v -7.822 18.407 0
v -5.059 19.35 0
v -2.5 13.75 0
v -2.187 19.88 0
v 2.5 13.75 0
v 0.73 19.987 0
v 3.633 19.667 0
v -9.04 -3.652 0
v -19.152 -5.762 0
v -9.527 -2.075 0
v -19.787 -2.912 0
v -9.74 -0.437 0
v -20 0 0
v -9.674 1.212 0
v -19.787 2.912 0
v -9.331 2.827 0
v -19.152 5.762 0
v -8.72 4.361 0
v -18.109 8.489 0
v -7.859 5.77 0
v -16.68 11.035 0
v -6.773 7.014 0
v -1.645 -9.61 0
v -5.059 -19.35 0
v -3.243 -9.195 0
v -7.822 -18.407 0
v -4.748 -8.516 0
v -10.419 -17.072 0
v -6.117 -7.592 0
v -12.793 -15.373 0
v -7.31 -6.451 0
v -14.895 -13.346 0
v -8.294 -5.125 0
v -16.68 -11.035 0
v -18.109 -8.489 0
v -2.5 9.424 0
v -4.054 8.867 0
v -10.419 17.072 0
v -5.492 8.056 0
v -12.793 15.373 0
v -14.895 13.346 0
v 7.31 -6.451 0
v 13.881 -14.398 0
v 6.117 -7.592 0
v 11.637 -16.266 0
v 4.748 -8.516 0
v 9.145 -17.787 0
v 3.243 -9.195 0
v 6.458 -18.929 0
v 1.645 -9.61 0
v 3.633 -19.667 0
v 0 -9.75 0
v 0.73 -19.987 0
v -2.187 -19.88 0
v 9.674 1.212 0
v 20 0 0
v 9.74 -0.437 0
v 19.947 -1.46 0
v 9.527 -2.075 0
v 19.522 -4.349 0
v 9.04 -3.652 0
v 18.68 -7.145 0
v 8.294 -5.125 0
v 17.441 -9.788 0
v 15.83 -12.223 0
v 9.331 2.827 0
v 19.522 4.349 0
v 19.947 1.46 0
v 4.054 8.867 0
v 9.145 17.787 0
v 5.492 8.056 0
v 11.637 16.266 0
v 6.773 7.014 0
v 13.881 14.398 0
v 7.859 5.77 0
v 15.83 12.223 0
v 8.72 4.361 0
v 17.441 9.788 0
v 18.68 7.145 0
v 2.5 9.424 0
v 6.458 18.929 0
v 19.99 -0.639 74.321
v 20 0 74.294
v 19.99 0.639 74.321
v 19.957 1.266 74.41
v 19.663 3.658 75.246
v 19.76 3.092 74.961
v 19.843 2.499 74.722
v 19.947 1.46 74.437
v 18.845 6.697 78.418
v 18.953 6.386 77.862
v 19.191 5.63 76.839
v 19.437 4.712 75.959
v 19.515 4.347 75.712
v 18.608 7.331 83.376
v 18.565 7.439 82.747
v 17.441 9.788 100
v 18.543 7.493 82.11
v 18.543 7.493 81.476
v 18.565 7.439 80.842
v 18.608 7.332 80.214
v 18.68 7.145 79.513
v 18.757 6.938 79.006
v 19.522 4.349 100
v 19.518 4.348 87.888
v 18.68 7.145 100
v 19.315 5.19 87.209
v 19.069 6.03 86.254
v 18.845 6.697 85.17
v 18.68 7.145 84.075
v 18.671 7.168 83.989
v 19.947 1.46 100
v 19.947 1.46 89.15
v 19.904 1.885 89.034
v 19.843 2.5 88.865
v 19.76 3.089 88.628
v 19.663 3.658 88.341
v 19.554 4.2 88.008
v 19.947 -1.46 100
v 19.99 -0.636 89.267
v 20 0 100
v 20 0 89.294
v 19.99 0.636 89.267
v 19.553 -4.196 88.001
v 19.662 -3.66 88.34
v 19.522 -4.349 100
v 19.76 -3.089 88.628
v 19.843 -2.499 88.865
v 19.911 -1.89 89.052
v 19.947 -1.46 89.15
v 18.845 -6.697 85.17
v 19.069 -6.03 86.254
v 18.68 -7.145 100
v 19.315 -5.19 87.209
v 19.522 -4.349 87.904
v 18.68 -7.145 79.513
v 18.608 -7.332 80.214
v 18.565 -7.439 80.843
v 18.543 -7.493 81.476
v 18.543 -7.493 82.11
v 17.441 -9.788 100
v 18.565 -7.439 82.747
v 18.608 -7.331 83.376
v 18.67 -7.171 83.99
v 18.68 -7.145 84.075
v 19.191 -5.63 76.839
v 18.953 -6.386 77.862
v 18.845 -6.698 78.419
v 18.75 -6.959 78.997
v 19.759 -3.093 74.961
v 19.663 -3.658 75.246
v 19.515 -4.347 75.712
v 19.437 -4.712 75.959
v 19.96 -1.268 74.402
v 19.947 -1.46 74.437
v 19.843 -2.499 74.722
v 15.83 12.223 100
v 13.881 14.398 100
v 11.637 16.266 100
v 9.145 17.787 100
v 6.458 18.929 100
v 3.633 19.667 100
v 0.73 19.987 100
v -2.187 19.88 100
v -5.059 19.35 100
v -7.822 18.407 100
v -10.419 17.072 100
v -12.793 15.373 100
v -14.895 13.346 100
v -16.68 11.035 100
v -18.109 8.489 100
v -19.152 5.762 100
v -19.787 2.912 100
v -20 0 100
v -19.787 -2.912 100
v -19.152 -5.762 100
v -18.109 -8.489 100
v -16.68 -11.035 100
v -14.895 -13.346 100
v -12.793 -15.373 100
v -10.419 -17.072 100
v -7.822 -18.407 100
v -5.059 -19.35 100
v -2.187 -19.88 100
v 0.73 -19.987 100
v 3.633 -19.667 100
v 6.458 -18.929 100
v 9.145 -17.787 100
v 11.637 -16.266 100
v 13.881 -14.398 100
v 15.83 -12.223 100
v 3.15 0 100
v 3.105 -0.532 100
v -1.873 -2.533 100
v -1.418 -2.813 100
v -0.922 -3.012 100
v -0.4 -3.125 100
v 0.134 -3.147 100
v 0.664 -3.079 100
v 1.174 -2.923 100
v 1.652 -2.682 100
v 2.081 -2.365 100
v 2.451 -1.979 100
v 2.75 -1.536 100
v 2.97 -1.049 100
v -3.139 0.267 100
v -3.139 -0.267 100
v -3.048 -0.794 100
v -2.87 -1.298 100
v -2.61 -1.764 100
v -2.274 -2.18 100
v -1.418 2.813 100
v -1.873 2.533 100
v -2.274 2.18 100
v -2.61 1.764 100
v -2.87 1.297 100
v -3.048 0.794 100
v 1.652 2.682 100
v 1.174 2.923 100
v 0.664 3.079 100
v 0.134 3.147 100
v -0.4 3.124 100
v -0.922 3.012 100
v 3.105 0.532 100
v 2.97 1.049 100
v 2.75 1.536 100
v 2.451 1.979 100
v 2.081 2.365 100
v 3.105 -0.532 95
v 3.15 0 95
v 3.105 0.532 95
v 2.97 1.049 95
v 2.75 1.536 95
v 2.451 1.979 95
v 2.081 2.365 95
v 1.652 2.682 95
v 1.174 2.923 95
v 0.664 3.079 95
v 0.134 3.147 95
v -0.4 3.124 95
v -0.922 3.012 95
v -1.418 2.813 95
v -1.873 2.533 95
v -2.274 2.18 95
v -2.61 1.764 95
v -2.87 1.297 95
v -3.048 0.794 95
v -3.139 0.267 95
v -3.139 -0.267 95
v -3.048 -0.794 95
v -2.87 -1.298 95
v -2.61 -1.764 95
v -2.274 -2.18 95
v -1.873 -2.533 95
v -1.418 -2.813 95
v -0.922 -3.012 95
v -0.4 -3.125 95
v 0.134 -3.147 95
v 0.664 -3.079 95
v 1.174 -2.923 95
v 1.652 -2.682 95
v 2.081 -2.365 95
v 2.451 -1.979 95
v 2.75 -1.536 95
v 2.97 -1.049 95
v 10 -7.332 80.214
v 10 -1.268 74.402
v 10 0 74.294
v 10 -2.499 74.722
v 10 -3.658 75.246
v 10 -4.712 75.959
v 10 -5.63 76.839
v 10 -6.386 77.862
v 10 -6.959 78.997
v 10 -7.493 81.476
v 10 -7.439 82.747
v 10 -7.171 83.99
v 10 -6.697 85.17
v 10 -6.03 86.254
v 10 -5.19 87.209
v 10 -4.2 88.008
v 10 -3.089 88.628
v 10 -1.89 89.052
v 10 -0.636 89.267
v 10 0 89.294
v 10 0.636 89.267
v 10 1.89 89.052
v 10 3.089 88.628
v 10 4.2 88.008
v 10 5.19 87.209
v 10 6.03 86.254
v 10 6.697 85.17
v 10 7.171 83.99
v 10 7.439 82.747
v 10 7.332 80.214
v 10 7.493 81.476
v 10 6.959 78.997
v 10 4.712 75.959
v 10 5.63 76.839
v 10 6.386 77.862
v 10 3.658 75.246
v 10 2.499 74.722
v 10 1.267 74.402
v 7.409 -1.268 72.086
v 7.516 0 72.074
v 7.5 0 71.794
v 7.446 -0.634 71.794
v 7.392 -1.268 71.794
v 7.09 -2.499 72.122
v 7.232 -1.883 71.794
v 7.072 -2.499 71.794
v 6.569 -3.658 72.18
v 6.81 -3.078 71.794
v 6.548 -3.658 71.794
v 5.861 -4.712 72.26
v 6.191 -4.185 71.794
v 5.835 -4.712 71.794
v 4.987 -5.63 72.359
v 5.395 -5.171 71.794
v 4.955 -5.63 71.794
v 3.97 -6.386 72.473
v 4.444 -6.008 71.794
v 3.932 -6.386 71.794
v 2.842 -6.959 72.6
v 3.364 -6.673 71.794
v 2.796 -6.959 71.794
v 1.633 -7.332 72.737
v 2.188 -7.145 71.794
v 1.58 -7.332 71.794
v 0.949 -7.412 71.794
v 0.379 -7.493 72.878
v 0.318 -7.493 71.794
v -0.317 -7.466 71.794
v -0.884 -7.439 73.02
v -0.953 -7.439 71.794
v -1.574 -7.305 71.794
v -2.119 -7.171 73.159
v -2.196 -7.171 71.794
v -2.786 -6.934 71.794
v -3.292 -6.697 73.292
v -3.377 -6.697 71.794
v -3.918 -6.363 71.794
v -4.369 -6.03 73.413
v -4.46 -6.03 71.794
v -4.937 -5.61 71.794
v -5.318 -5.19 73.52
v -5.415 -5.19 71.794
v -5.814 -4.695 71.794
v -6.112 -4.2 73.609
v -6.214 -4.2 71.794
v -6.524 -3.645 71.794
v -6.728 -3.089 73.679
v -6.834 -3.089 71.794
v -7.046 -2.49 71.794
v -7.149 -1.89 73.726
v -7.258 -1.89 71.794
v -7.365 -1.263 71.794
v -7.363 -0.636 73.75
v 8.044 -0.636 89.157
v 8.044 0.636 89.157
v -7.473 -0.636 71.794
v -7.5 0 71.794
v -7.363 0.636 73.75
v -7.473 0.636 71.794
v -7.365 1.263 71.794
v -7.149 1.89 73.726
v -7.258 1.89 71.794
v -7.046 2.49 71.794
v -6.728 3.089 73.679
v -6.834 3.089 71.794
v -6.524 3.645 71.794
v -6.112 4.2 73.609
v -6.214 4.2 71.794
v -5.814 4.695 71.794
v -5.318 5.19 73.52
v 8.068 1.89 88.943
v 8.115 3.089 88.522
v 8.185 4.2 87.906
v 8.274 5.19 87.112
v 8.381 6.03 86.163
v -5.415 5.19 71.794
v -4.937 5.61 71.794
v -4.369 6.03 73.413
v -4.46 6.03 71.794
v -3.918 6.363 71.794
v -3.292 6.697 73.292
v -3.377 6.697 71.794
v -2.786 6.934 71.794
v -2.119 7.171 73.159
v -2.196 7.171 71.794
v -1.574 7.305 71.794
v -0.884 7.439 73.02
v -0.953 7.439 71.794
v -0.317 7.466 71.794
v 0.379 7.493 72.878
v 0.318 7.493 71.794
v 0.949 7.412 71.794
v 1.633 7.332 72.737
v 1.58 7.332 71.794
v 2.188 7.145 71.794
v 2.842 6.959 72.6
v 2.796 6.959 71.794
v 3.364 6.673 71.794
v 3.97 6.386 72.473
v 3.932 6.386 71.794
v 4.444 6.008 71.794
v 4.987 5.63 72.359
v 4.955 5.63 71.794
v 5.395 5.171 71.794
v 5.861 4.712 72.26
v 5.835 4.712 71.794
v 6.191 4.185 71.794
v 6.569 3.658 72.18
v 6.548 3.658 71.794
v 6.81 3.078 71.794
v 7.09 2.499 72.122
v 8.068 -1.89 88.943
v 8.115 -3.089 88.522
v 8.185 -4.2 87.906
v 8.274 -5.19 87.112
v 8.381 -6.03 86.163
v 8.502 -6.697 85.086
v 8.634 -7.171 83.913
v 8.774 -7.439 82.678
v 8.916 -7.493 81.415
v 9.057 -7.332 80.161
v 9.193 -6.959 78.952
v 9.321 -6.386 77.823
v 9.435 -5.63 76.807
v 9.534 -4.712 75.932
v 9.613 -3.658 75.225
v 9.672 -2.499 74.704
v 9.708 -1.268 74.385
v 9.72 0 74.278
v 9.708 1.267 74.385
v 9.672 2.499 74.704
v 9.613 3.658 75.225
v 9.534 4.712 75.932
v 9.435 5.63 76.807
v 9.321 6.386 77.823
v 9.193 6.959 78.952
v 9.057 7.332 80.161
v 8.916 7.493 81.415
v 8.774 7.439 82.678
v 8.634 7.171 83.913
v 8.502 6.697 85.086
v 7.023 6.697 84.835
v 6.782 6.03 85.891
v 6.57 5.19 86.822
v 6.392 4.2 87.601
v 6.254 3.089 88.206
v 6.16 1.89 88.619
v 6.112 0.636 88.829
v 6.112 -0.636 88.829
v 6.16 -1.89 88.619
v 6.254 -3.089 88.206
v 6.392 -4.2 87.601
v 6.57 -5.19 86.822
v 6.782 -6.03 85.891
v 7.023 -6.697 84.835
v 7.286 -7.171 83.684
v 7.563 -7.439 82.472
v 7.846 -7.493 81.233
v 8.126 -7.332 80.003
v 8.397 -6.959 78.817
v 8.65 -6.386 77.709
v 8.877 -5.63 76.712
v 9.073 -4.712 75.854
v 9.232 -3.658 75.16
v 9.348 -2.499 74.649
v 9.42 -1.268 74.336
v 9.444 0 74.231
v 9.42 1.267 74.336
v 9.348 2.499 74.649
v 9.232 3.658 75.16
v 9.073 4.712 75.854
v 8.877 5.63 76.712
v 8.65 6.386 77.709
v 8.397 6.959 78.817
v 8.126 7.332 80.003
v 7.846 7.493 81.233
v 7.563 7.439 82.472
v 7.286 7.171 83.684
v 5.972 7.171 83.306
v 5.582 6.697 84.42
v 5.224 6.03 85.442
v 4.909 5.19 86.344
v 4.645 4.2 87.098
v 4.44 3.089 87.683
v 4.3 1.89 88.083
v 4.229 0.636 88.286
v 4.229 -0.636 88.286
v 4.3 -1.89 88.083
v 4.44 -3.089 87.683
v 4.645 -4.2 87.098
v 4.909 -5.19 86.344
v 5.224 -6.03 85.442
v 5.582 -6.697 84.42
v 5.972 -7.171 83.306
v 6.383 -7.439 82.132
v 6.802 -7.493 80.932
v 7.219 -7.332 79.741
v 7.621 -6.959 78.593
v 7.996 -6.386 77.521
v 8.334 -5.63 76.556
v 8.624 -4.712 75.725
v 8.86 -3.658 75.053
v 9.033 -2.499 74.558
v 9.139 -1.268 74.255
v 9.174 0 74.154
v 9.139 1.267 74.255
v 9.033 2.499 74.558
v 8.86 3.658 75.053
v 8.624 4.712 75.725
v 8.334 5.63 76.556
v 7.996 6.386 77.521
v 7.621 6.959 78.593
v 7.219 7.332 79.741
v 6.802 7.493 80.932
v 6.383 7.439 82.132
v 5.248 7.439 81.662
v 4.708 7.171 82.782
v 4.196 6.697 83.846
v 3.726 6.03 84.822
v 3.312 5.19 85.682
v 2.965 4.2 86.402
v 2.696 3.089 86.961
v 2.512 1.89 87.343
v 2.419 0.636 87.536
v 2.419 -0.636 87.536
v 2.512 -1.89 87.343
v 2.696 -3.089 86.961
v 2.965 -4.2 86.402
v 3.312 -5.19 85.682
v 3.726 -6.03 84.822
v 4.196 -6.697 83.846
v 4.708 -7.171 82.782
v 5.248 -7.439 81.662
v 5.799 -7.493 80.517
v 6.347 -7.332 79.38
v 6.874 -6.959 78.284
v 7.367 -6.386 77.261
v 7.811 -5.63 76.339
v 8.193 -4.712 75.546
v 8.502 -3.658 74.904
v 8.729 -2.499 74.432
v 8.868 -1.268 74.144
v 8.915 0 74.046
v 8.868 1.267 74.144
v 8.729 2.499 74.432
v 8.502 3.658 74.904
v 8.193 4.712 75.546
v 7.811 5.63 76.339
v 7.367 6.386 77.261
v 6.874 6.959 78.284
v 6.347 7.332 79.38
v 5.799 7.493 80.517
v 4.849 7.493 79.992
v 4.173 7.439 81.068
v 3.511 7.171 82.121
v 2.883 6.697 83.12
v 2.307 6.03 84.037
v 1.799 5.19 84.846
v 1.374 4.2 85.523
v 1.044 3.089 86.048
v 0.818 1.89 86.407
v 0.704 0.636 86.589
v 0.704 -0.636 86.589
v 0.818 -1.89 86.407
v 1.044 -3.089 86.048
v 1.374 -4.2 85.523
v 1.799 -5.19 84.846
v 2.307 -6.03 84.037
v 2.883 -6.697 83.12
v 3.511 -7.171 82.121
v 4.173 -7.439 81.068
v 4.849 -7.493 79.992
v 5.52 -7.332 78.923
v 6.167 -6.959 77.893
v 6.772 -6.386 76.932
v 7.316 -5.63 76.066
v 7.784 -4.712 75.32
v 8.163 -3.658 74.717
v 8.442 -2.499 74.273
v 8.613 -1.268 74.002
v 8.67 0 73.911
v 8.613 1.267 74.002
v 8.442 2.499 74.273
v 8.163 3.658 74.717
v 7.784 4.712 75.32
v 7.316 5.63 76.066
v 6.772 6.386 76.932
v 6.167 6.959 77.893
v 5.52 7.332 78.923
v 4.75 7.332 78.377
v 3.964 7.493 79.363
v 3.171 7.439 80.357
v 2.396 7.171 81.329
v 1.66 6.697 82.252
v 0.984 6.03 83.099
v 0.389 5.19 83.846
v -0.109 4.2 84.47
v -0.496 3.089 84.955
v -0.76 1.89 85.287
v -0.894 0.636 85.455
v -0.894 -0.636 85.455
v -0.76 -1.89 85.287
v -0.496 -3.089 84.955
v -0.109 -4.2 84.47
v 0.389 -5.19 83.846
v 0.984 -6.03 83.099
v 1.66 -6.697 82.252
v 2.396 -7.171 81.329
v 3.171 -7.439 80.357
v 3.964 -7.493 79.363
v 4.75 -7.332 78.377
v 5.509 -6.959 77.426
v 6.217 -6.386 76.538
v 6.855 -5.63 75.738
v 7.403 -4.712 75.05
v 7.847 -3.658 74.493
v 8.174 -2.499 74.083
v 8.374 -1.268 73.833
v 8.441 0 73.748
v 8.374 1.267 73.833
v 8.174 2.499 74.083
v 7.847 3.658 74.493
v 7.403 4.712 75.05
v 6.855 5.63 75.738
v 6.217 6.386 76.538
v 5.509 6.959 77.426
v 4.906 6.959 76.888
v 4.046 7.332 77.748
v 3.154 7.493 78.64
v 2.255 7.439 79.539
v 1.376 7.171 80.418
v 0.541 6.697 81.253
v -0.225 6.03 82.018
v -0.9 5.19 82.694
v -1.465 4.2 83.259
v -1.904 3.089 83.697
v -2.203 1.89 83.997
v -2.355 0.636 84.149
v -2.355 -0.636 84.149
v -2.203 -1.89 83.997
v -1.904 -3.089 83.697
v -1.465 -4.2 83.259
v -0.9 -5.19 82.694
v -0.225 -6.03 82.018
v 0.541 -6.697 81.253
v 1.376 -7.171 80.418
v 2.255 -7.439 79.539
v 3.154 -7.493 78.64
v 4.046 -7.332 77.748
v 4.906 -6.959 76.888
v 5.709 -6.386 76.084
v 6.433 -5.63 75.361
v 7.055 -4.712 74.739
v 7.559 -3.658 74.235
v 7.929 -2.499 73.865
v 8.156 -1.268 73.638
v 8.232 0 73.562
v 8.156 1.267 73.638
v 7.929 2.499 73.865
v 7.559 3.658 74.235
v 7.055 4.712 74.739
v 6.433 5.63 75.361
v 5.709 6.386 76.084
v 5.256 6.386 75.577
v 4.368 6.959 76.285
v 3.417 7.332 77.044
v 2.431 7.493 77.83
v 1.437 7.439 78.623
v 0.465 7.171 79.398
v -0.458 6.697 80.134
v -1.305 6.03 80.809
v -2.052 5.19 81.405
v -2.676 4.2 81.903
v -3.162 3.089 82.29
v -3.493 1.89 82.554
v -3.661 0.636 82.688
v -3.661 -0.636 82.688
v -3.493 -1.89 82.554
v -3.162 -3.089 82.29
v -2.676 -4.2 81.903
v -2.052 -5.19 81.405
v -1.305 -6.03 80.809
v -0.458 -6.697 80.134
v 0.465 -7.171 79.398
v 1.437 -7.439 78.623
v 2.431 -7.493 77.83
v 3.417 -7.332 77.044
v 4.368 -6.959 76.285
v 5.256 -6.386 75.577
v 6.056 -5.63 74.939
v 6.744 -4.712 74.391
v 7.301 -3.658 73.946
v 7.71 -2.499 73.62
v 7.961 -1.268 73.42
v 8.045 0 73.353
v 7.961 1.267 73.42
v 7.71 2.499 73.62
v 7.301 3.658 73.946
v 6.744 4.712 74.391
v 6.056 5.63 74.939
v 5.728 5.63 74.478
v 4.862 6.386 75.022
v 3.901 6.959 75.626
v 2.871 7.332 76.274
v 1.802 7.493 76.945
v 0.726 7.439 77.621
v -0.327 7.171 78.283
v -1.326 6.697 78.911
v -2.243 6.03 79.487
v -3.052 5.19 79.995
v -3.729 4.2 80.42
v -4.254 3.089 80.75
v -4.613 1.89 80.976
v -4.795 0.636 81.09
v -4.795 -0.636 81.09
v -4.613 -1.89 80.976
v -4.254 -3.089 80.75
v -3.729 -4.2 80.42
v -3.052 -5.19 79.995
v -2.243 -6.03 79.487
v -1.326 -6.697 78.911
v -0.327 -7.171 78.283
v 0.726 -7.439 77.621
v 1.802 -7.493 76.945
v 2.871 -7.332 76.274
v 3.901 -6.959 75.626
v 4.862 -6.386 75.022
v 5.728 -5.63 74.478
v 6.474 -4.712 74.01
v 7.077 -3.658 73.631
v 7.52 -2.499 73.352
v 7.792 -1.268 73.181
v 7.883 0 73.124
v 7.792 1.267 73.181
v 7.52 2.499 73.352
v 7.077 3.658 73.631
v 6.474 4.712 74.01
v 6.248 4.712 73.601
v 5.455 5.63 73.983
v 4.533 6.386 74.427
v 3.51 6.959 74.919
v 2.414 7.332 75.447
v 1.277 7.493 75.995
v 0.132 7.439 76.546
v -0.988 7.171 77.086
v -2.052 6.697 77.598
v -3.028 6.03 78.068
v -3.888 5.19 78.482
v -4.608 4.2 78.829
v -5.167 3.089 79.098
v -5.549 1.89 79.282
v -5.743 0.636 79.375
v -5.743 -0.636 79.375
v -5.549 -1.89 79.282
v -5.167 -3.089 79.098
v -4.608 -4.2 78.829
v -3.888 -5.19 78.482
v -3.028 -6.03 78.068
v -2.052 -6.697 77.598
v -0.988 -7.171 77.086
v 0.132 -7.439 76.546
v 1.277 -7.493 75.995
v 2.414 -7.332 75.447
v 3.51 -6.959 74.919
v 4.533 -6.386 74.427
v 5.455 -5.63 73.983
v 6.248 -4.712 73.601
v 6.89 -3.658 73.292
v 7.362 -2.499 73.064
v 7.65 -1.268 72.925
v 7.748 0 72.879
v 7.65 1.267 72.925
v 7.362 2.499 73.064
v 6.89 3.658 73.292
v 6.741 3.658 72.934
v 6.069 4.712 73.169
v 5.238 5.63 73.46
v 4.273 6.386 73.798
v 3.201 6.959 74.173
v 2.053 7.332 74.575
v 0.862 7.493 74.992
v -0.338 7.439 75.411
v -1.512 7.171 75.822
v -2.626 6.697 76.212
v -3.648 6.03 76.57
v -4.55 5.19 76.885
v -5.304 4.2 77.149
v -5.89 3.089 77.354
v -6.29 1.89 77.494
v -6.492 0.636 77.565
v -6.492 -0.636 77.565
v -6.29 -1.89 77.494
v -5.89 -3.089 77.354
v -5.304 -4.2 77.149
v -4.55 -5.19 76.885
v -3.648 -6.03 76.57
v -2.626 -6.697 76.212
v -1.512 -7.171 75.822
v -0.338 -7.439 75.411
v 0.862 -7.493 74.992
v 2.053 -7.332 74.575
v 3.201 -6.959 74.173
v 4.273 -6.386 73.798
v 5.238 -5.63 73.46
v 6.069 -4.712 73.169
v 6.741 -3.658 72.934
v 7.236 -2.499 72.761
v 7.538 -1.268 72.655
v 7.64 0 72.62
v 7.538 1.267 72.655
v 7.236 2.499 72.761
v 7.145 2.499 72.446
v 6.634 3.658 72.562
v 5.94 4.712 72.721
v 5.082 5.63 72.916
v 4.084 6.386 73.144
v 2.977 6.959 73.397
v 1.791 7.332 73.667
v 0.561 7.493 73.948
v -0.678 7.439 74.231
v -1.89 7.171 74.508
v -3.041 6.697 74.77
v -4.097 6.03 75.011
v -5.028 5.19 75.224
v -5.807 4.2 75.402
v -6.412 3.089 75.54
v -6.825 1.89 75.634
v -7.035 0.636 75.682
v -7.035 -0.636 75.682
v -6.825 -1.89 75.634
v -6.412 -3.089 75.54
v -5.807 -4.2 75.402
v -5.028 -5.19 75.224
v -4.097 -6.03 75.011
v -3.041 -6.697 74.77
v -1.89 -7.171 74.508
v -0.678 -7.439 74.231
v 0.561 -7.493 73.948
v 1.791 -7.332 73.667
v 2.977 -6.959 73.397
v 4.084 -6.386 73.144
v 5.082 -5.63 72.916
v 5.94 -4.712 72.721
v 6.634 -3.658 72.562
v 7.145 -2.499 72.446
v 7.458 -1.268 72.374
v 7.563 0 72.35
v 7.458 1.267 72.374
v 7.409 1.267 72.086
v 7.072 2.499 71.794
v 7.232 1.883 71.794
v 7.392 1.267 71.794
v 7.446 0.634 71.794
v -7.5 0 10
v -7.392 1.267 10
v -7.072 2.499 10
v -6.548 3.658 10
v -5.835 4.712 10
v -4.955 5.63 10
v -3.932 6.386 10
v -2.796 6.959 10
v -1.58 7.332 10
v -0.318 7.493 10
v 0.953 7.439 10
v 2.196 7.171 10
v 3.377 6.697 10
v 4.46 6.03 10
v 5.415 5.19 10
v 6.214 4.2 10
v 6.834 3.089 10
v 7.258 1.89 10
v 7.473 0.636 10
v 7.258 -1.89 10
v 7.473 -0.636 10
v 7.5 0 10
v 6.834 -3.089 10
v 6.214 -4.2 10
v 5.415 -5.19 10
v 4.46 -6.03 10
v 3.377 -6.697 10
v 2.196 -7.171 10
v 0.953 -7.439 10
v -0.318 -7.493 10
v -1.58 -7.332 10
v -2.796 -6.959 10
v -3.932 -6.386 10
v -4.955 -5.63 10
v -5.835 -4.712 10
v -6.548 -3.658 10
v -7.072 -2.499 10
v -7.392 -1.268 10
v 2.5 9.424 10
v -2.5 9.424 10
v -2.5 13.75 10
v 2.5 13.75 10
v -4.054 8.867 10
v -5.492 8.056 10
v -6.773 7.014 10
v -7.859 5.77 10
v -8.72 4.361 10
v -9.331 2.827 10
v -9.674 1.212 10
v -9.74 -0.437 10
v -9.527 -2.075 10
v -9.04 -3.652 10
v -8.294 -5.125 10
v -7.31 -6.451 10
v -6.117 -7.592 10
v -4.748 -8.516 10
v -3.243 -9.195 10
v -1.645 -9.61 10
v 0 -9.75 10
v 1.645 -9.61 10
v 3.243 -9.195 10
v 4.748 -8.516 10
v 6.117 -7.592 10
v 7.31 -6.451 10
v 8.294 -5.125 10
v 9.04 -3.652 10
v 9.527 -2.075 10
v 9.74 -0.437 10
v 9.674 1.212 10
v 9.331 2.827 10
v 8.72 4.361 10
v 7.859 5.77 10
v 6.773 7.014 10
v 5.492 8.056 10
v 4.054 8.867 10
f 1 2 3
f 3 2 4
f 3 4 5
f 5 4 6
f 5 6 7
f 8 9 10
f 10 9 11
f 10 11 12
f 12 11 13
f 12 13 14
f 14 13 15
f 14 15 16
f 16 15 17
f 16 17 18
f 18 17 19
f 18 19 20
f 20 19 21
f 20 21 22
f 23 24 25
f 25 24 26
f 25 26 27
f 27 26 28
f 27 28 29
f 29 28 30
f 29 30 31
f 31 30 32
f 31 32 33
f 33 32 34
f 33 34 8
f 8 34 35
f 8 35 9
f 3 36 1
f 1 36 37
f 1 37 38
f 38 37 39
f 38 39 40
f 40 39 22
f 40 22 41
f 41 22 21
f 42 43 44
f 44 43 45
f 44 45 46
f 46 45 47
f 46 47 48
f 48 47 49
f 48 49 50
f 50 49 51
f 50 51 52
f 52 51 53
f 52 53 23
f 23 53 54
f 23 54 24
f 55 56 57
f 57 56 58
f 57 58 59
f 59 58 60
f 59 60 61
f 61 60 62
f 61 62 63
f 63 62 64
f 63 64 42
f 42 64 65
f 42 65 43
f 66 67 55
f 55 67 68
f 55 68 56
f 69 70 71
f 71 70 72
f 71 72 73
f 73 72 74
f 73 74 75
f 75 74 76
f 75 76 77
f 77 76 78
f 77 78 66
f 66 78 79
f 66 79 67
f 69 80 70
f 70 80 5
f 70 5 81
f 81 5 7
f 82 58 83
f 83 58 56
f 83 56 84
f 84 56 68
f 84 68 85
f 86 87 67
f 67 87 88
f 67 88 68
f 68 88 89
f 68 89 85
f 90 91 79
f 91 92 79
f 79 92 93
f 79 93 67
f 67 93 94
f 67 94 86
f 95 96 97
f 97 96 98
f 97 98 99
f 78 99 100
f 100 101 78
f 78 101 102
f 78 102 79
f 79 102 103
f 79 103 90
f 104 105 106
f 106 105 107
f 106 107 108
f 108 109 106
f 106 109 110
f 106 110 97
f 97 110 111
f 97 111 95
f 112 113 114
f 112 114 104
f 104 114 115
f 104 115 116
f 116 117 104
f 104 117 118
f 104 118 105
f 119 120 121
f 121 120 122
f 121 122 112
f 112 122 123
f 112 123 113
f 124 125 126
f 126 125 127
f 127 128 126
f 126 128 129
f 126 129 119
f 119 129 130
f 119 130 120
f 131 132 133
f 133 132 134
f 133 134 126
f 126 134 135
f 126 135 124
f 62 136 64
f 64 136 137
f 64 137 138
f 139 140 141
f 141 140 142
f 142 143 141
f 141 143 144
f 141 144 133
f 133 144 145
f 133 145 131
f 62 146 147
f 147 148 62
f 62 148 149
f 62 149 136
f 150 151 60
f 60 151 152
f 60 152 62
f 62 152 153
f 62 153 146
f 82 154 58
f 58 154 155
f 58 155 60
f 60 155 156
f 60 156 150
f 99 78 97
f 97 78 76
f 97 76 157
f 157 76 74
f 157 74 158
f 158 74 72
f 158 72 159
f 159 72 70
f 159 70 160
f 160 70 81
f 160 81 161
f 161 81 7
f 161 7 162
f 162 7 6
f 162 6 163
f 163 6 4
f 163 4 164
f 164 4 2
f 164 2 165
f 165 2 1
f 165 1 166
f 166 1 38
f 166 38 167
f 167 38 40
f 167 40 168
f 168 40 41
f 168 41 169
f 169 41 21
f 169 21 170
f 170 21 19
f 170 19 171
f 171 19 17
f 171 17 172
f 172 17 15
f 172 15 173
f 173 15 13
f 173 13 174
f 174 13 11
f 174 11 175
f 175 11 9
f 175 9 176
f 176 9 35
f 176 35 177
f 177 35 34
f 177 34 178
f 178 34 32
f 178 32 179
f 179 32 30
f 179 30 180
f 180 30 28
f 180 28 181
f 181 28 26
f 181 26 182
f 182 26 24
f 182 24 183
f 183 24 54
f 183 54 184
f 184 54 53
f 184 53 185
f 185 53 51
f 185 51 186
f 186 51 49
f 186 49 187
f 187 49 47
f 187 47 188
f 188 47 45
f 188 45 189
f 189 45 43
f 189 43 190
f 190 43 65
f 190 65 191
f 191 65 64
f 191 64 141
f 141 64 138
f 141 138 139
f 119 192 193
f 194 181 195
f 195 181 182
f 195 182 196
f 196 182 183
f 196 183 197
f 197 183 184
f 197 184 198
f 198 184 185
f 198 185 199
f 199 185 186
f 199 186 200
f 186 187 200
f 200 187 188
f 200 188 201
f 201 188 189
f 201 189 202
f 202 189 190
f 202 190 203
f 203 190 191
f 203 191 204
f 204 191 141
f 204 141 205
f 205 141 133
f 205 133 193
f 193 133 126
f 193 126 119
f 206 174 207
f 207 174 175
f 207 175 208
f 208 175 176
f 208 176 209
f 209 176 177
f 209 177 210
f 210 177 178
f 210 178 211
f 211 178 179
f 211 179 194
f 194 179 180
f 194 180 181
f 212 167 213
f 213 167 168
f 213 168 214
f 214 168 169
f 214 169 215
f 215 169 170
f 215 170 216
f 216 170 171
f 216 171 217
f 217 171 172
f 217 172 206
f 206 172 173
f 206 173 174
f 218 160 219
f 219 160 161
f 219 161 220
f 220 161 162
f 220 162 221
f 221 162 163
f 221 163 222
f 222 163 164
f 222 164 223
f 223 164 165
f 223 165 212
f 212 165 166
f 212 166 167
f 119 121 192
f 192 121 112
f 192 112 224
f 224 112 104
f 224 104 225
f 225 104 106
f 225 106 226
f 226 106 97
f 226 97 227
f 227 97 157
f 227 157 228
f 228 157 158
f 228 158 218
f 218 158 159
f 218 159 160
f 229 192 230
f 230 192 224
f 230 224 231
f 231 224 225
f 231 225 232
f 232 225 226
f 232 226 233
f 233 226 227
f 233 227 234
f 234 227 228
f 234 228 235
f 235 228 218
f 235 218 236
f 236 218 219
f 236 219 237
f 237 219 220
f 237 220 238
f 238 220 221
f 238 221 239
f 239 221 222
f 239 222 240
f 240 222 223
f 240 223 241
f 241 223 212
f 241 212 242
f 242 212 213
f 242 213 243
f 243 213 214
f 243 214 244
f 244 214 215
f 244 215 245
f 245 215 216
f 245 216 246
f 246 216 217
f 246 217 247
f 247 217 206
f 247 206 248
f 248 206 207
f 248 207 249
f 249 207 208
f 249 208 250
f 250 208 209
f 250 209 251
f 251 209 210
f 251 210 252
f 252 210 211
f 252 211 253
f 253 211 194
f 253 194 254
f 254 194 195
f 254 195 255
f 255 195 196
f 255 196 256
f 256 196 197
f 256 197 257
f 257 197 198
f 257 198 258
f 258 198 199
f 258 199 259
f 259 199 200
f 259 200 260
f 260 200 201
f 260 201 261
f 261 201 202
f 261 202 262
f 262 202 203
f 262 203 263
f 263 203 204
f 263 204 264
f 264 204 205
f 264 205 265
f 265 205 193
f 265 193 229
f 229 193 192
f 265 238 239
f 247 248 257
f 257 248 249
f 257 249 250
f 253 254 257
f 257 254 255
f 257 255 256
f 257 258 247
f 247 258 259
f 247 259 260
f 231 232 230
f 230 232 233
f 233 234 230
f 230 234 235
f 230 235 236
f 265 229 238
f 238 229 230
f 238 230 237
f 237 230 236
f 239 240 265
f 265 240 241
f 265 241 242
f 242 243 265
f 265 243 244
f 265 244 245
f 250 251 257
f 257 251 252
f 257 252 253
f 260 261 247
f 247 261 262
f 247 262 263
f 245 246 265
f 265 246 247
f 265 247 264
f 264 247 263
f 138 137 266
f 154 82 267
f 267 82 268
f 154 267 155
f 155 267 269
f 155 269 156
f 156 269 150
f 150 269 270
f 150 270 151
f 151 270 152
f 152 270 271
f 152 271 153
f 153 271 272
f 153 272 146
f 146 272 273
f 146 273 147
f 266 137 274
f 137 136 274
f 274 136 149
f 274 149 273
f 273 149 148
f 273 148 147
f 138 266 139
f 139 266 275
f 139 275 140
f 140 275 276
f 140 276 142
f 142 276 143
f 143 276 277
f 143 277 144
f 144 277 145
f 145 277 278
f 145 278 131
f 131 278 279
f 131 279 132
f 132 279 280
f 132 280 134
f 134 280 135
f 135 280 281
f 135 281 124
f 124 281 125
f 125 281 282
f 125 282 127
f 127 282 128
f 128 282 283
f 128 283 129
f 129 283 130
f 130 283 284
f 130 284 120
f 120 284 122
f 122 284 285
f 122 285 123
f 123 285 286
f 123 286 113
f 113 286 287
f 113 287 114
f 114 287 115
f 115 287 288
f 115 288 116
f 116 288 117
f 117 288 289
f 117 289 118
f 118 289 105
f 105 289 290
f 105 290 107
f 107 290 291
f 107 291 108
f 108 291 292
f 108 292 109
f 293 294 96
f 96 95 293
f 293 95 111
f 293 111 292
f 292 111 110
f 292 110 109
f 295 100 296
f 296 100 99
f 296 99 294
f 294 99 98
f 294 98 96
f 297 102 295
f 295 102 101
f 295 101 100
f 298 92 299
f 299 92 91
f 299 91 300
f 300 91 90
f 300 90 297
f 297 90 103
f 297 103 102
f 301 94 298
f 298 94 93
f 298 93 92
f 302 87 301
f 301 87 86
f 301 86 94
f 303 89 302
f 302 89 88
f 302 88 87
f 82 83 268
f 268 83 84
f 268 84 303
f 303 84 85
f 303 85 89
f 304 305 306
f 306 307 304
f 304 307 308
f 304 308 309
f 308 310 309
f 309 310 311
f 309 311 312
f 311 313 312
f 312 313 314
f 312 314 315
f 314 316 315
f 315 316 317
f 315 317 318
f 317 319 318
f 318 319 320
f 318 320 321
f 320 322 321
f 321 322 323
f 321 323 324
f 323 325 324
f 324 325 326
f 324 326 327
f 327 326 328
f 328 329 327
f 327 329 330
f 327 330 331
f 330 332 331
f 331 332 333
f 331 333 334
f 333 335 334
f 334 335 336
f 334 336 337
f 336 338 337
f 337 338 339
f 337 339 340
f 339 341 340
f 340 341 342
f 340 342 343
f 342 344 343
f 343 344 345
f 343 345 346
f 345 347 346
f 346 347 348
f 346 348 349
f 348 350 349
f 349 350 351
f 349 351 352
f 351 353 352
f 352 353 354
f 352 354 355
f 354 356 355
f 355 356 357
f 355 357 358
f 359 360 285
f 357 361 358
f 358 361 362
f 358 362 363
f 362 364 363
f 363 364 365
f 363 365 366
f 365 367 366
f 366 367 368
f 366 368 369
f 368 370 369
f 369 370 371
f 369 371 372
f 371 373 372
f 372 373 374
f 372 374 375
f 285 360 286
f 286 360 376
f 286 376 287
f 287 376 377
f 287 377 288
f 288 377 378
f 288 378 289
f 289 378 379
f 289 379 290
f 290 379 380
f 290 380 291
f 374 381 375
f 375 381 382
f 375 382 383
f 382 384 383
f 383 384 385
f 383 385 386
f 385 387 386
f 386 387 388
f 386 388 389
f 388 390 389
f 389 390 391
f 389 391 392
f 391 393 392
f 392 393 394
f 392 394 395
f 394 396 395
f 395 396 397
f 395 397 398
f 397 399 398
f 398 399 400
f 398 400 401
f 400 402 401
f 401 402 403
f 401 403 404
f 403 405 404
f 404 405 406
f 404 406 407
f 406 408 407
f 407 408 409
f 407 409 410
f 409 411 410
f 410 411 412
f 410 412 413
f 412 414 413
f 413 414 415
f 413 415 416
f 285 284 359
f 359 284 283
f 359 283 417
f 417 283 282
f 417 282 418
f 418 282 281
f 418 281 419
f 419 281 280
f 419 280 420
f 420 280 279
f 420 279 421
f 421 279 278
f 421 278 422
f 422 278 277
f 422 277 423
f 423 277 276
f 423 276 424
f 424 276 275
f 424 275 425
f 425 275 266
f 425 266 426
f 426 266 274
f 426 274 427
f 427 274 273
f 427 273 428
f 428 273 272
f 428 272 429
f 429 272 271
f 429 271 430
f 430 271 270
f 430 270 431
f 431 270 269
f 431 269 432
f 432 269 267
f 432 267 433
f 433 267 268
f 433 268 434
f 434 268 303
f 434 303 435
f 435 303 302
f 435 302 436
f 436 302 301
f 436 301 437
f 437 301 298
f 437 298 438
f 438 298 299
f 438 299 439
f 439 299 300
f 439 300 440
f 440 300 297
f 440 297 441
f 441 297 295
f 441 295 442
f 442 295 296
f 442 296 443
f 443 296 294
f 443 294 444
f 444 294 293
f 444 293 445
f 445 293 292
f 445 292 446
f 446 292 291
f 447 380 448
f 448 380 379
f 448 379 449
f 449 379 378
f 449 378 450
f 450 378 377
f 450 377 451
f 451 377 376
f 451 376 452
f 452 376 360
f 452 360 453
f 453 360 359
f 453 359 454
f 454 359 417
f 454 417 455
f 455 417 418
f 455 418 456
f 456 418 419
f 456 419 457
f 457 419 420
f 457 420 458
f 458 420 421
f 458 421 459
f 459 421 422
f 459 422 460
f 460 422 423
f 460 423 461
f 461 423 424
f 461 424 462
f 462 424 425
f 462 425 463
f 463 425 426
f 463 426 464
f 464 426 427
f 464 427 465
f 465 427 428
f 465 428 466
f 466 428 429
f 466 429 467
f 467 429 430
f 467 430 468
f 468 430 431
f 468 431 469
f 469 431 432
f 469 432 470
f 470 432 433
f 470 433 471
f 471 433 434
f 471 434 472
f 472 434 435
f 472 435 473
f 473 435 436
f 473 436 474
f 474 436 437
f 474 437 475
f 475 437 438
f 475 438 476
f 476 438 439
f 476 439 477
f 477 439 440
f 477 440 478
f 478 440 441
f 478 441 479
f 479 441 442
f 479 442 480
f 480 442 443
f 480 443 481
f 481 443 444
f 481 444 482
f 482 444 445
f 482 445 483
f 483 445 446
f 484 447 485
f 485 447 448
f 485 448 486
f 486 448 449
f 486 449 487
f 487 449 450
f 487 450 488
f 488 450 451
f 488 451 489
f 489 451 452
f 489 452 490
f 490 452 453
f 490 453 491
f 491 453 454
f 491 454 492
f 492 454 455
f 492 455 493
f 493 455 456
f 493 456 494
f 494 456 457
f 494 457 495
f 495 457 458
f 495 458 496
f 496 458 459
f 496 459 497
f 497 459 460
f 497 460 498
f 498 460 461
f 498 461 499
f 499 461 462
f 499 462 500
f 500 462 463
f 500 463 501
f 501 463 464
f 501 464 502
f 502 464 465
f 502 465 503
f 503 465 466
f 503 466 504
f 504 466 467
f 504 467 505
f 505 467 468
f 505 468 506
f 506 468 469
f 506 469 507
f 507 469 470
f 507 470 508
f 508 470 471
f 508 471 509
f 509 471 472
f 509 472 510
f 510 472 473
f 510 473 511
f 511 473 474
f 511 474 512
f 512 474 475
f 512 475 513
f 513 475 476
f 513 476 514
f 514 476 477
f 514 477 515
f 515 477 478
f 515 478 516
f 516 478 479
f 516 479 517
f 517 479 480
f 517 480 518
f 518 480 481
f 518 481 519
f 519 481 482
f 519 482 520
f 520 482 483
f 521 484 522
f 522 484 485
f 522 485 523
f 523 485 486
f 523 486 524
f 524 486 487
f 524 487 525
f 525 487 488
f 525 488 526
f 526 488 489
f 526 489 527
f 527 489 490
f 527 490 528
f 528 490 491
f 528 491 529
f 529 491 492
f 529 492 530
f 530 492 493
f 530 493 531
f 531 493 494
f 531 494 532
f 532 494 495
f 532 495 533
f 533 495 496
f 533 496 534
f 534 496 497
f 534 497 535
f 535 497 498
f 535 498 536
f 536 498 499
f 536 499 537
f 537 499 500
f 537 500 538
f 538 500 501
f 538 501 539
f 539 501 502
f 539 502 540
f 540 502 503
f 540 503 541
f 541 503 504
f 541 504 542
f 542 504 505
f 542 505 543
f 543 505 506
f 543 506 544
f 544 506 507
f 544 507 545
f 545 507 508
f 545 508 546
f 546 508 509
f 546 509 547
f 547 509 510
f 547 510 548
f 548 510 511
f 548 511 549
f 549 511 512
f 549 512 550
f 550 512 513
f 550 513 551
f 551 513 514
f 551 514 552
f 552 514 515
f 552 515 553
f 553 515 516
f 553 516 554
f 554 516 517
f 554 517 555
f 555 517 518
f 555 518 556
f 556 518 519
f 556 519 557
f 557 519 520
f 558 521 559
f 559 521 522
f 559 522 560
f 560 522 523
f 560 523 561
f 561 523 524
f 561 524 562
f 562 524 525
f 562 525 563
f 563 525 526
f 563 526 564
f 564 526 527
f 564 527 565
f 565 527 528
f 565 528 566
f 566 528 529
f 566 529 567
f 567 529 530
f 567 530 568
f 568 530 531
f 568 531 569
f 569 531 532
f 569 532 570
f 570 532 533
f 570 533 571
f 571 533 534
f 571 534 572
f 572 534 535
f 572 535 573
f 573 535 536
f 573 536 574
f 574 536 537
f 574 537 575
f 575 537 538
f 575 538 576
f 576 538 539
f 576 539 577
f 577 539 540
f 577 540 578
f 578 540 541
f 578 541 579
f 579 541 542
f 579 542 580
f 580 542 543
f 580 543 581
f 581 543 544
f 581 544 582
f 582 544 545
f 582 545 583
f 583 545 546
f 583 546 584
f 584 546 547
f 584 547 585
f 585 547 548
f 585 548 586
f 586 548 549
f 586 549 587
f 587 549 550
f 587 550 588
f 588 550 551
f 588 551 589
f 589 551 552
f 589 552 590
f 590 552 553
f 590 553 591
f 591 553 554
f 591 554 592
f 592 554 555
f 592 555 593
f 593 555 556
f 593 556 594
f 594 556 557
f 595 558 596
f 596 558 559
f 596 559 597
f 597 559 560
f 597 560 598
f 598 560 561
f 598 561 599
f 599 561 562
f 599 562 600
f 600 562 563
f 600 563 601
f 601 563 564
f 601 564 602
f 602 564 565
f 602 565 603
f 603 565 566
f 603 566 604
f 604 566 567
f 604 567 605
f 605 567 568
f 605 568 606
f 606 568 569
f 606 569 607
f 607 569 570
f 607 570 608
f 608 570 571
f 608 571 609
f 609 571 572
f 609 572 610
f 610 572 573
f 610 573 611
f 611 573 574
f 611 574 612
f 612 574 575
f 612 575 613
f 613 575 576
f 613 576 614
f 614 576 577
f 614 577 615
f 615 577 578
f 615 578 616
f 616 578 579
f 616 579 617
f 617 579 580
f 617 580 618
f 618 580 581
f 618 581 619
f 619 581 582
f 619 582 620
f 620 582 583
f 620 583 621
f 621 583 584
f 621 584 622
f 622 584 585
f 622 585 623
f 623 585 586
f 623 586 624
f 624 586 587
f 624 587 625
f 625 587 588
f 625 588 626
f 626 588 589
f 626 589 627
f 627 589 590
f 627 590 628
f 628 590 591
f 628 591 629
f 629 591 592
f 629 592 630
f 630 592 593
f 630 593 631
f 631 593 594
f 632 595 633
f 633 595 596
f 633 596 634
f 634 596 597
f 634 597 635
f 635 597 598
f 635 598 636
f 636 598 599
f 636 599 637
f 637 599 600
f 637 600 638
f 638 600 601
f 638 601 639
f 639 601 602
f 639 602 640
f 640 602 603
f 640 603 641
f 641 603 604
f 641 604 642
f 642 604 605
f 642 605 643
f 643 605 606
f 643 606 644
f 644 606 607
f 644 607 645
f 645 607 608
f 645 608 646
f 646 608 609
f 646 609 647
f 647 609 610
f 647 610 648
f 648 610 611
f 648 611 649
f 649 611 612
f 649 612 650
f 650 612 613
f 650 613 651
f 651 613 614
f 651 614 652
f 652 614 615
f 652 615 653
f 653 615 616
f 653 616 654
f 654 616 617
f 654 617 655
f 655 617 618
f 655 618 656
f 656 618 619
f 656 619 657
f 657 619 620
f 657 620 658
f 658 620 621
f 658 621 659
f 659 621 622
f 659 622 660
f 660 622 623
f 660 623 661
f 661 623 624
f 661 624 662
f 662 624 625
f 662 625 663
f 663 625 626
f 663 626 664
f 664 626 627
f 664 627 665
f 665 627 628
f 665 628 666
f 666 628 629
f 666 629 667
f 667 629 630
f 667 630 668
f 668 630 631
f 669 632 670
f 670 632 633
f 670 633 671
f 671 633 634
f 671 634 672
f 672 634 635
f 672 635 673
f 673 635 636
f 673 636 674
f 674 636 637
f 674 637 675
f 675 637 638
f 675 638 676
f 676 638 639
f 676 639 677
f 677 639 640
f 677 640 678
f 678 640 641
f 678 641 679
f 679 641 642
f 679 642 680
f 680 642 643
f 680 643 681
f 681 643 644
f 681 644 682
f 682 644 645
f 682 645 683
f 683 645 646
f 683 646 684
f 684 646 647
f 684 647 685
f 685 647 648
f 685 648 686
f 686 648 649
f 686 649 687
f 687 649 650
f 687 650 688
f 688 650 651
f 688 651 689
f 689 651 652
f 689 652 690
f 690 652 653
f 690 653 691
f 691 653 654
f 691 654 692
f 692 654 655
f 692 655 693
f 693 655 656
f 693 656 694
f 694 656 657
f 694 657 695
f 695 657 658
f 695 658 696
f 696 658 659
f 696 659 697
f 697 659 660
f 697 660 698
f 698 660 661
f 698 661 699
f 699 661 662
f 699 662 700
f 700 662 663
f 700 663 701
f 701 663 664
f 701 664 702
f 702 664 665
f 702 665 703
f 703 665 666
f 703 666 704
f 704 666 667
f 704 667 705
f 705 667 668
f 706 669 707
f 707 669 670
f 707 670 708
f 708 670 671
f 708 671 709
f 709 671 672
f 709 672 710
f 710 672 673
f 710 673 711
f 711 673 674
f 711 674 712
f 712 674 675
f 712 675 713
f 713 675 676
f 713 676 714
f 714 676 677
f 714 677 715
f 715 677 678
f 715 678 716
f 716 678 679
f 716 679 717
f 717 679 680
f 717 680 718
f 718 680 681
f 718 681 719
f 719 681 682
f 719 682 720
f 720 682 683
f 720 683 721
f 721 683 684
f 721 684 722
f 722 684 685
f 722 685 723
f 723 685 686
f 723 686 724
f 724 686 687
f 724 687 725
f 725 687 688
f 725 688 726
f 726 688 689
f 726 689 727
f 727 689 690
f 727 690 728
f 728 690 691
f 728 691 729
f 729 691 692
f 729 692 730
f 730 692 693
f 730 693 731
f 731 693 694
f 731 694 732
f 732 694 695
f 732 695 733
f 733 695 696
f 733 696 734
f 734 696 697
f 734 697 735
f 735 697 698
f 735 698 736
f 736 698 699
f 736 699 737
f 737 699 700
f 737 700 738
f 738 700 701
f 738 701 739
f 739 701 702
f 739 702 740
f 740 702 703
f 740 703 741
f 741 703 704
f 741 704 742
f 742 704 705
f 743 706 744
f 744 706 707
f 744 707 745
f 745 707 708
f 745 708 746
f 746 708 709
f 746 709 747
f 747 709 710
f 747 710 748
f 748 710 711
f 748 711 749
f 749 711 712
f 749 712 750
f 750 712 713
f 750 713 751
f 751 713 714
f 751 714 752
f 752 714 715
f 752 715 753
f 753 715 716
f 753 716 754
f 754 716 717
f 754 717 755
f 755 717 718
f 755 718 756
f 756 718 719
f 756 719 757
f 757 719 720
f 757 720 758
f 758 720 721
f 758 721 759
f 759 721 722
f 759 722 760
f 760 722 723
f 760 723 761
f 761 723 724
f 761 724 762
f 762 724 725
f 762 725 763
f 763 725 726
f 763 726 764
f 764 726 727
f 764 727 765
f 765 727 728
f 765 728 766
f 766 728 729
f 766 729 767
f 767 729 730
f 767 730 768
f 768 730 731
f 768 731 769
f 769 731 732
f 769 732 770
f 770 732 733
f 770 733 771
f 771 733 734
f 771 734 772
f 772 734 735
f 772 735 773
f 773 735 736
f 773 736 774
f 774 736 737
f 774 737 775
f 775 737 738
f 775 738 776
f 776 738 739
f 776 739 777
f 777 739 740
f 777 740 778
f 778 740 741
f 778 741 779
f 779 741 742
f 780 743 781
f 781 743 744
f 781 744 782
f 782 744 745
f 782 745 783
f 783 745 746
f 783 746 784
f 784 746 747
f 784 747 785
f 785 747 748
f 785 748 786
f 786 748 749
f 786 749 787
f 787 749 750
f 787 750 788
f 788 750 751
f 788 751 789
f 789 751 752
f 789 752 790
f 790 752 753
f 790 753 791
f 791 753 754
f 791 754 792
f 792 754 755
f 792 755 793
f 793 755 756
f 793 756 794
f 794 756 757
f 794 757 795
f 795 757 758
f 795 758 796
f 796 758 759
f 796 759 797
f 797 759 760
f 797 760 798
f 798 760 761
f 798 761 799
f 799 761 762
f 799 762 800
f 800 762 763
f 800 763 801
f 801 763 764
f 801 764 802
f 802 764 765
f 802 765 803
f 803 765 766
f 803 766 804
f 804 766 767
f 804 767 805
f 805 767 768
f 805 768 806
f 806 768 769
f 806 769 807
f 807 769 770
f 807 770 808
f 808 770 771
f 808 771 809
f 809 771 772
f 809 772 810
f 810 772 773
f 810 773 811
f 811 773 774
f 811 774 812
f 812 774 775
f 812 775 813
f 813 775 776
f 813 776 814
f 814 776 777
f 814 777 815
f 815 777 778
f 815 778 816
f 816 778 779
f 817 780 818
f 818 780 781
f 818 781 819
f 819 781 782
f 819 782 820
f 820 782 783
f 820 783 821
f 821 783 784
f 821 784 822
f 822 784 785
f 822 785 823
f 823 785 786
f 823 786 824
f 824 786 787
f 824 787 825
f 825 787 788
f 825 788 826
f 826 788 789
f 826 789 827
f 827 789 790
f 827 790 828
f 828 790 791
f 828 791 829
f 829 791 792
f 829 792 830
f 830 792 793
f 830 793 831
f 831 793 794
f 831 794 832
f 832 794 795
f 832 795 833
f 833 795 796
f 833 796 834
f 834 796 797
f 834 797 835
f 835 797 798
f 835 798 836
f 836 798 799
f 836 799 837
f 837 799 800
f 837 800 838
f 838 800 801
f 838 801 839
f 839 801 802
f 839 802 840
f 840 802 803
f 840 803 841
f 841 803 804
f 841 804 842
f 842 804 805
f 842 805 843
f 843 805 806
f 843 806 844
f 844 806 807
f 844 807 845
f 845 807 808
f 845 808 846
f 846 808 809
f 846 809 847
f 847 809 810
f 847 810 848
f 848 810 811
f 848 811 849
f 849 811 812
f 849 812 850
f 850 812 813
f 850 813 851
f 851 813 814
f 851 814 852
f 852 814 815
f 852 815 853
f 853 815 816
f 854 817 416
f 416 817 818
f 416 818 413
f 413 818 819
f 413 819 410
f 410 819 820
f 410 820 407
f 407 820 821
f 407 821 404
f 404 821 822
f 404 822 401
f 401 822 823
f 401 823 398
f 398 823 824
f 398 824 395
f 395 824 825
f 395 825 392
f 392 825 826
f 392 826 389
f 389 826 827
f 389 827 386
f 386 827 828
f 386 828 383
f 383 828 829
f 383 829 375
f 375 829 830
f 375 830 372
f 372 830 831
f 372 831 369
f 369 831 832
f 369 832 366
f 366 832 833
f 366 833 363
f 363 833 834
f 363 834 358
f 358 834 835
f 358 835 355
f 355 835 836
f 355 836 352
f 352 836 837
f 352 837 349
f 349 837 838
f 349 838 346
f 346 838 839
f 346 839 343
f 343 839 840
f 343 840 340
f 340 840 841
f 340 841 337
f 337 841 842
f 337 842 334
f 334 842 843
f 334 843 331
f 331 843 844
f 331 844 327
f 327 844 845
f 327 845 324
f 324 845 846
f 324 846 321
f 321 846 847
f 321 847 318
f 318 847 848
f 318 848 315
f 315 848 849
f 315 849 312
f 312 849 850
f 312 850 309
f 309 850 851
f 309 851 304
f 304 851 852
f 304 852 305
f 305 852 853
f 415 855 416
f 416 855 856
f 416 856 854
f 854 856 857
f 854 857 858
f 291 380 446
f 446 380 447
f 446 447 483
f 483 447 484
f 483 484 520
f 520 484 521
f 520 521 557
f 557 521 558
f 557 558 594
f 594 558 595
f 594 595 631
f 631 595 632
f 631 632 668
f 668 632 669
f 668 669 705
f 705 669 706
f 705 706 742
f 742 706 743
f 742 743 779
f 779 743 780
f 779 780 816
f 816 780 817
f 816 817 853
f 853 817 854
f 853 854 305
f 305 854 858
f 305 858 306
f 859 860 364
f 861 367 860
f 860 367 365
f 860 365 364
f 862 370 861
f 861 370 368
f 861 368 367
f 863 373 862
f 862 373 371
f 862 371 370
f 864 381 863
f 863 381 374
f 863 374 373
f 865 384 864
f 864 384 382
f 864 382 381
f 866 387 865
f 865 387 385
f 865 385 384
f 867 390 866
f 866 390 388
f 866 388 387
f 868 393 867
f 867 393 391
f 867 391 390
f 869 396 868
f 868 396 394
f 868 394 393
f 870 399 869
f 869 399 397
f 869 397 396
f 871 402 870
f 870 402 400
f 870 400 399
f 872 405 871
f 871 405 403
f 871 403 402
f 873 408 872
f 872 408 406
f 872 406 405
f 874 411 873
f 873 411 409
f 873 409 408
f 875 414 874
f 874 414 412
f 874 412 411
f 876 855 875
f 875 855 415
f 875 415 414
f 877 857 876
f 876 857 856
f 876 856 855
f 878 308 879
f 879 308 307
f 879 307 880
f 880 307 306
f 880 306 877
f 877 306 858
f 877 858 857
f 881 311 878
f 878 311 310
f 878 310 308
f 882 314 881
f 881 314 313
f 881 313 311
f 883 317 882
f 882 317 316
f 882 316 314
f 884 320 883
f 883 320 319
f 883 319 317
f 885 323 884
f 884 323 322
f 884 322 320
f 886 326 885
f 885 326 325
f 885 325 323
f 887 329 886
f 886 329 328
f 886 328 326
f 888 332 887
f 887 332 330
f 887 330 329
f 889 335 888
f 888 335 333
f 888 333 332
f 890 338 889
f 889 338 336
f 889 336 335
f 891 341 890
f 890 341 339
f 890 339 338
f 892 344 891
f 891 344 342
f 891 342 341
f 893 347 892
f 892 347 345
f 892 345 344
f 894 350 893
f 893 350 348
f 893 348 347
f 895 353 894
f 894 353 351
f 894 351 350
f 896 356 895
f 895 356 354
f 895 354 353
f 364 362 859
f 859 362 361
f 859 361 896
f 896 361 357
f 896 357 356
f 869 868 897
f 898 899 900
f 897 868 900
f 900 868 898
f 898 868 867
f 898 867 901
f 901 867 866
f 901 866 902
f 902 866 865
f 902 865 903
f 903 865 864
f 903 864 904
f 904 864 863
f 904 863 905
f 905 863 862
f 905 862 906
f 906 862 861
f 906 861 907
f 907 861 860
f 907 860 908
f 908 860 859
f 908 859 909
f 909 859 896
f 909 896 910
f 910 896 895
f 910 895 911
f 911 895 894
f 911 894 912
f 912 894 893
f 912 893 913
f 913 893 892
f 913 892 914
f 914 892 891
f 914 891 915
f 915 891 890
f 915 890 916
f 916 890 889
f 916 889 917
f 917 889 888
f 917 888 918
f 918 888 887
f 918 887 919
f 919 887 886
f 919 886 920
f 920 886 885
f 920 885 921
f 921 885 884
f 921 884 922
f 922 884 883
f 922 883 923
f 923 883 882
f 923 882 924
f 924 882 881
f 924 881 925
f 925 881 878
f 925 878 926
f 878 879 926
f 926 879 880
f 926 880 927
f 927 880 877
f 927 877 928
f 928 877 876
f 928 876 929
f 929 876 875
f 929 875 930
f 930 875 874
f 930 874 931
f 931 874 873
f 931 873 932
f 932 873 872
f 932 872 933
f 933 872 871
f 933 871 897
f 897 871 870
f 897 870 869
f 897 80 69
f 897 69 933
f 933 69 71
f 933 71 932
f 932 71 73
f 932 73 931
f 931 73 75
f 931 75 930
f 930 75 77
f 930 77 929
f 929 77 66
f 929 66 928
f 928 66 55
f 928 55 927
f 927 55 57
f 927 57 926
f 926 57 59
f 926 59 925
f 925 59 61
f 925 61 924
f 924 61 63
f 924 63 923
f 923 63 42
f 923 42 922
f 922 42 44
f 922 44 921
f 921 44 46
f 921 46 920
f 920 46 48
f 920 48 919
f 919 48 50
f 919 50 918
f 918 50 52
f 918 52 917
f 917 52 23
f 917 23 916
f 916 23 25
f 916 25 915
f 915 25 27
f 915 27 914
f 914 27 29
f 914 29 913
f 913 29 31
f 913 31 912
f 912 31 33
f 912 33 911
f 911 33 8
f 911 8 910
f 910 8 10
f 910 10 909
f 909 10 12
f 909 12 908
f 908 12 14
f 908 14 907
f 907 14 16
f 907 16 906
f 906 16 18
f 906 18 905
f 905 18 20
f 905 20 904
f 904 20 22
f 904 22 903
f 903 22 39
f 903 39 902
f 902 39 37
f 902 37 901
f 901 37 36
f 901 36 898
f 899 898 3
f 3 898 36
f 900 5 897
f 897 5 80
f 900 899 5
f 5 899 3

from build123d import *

# Parameters (mm, degrees)
SKETCH1_R           = 20
BOSS_EXTRUDE1_DEPTH = 100
SKETCH3_R           = 3.15
CUT_EXTRUDE2_DEPTH  = 5
SKETCH2_R           = 7.5
SKETCH6_R           = 9.75
SKETCH6_W           = 5
SKETCH6_H           = 7.292344614
CUT_EXTRUDE3_DEPTH  = 10


with BuildPart() as part:
    # Sketch1 → Boss-Extrude1 (new body)
    with BuildSketch(Plane.XY):
        Circle(SKETCH1_R)
    extrude(amount=BOSS_EXTRUDE1_DEPTH)

    # Sketch3 → Cut-Extrude2 (cut)
    with BuildSketch(Plane.XY.offset(100)):
        Circle(SKETCH3_R)
    extrude(amount=-CUT_EXTRUDE2_DEPTH, mode=Mode.SUBTRACT)

    # Cut-Sweep1: sweep along a path in Sketch4
    with BuildLine(Plane(origin=(0, 0, 0), x_dir=(1, 0, 0), z_dir=(0, 1, 0))) as cut_sweep1_path:
        Line((0, 0), (0, -71.793883449))
        ThreePointArc((0, -71.793883449), (2.928932188, -78.864951261), (10, -81.793883449))
        Line((10, -81.793883449), (20, -81.793883449))
    # Sketch2 → Cut-Sweep1 (sweep, cut)
    with BuildSketch(Plane(origin=(0, 0, 0), x_dir=(-1, 0, 0), z_dir=(0, 0, -1))):
        Circle(SKETCH2_R)
    sweep(path=cut_sweep1_path.line, mode=Mode.SUBTRACT)

    # Sketch6 → Cut-Extrude3 (cut)
    with BuildSketch(Plane.XY):
        Circle(SKETCH6_R)
        with Locations((0, 10.103827693)):
            Rectangle(SKETCH6_W, SKETCH6_H)
    extrude(amount=CUT_EXTRUDE3_DEPTH, mode=Mode.SUBTRACT)


solid = part.part
